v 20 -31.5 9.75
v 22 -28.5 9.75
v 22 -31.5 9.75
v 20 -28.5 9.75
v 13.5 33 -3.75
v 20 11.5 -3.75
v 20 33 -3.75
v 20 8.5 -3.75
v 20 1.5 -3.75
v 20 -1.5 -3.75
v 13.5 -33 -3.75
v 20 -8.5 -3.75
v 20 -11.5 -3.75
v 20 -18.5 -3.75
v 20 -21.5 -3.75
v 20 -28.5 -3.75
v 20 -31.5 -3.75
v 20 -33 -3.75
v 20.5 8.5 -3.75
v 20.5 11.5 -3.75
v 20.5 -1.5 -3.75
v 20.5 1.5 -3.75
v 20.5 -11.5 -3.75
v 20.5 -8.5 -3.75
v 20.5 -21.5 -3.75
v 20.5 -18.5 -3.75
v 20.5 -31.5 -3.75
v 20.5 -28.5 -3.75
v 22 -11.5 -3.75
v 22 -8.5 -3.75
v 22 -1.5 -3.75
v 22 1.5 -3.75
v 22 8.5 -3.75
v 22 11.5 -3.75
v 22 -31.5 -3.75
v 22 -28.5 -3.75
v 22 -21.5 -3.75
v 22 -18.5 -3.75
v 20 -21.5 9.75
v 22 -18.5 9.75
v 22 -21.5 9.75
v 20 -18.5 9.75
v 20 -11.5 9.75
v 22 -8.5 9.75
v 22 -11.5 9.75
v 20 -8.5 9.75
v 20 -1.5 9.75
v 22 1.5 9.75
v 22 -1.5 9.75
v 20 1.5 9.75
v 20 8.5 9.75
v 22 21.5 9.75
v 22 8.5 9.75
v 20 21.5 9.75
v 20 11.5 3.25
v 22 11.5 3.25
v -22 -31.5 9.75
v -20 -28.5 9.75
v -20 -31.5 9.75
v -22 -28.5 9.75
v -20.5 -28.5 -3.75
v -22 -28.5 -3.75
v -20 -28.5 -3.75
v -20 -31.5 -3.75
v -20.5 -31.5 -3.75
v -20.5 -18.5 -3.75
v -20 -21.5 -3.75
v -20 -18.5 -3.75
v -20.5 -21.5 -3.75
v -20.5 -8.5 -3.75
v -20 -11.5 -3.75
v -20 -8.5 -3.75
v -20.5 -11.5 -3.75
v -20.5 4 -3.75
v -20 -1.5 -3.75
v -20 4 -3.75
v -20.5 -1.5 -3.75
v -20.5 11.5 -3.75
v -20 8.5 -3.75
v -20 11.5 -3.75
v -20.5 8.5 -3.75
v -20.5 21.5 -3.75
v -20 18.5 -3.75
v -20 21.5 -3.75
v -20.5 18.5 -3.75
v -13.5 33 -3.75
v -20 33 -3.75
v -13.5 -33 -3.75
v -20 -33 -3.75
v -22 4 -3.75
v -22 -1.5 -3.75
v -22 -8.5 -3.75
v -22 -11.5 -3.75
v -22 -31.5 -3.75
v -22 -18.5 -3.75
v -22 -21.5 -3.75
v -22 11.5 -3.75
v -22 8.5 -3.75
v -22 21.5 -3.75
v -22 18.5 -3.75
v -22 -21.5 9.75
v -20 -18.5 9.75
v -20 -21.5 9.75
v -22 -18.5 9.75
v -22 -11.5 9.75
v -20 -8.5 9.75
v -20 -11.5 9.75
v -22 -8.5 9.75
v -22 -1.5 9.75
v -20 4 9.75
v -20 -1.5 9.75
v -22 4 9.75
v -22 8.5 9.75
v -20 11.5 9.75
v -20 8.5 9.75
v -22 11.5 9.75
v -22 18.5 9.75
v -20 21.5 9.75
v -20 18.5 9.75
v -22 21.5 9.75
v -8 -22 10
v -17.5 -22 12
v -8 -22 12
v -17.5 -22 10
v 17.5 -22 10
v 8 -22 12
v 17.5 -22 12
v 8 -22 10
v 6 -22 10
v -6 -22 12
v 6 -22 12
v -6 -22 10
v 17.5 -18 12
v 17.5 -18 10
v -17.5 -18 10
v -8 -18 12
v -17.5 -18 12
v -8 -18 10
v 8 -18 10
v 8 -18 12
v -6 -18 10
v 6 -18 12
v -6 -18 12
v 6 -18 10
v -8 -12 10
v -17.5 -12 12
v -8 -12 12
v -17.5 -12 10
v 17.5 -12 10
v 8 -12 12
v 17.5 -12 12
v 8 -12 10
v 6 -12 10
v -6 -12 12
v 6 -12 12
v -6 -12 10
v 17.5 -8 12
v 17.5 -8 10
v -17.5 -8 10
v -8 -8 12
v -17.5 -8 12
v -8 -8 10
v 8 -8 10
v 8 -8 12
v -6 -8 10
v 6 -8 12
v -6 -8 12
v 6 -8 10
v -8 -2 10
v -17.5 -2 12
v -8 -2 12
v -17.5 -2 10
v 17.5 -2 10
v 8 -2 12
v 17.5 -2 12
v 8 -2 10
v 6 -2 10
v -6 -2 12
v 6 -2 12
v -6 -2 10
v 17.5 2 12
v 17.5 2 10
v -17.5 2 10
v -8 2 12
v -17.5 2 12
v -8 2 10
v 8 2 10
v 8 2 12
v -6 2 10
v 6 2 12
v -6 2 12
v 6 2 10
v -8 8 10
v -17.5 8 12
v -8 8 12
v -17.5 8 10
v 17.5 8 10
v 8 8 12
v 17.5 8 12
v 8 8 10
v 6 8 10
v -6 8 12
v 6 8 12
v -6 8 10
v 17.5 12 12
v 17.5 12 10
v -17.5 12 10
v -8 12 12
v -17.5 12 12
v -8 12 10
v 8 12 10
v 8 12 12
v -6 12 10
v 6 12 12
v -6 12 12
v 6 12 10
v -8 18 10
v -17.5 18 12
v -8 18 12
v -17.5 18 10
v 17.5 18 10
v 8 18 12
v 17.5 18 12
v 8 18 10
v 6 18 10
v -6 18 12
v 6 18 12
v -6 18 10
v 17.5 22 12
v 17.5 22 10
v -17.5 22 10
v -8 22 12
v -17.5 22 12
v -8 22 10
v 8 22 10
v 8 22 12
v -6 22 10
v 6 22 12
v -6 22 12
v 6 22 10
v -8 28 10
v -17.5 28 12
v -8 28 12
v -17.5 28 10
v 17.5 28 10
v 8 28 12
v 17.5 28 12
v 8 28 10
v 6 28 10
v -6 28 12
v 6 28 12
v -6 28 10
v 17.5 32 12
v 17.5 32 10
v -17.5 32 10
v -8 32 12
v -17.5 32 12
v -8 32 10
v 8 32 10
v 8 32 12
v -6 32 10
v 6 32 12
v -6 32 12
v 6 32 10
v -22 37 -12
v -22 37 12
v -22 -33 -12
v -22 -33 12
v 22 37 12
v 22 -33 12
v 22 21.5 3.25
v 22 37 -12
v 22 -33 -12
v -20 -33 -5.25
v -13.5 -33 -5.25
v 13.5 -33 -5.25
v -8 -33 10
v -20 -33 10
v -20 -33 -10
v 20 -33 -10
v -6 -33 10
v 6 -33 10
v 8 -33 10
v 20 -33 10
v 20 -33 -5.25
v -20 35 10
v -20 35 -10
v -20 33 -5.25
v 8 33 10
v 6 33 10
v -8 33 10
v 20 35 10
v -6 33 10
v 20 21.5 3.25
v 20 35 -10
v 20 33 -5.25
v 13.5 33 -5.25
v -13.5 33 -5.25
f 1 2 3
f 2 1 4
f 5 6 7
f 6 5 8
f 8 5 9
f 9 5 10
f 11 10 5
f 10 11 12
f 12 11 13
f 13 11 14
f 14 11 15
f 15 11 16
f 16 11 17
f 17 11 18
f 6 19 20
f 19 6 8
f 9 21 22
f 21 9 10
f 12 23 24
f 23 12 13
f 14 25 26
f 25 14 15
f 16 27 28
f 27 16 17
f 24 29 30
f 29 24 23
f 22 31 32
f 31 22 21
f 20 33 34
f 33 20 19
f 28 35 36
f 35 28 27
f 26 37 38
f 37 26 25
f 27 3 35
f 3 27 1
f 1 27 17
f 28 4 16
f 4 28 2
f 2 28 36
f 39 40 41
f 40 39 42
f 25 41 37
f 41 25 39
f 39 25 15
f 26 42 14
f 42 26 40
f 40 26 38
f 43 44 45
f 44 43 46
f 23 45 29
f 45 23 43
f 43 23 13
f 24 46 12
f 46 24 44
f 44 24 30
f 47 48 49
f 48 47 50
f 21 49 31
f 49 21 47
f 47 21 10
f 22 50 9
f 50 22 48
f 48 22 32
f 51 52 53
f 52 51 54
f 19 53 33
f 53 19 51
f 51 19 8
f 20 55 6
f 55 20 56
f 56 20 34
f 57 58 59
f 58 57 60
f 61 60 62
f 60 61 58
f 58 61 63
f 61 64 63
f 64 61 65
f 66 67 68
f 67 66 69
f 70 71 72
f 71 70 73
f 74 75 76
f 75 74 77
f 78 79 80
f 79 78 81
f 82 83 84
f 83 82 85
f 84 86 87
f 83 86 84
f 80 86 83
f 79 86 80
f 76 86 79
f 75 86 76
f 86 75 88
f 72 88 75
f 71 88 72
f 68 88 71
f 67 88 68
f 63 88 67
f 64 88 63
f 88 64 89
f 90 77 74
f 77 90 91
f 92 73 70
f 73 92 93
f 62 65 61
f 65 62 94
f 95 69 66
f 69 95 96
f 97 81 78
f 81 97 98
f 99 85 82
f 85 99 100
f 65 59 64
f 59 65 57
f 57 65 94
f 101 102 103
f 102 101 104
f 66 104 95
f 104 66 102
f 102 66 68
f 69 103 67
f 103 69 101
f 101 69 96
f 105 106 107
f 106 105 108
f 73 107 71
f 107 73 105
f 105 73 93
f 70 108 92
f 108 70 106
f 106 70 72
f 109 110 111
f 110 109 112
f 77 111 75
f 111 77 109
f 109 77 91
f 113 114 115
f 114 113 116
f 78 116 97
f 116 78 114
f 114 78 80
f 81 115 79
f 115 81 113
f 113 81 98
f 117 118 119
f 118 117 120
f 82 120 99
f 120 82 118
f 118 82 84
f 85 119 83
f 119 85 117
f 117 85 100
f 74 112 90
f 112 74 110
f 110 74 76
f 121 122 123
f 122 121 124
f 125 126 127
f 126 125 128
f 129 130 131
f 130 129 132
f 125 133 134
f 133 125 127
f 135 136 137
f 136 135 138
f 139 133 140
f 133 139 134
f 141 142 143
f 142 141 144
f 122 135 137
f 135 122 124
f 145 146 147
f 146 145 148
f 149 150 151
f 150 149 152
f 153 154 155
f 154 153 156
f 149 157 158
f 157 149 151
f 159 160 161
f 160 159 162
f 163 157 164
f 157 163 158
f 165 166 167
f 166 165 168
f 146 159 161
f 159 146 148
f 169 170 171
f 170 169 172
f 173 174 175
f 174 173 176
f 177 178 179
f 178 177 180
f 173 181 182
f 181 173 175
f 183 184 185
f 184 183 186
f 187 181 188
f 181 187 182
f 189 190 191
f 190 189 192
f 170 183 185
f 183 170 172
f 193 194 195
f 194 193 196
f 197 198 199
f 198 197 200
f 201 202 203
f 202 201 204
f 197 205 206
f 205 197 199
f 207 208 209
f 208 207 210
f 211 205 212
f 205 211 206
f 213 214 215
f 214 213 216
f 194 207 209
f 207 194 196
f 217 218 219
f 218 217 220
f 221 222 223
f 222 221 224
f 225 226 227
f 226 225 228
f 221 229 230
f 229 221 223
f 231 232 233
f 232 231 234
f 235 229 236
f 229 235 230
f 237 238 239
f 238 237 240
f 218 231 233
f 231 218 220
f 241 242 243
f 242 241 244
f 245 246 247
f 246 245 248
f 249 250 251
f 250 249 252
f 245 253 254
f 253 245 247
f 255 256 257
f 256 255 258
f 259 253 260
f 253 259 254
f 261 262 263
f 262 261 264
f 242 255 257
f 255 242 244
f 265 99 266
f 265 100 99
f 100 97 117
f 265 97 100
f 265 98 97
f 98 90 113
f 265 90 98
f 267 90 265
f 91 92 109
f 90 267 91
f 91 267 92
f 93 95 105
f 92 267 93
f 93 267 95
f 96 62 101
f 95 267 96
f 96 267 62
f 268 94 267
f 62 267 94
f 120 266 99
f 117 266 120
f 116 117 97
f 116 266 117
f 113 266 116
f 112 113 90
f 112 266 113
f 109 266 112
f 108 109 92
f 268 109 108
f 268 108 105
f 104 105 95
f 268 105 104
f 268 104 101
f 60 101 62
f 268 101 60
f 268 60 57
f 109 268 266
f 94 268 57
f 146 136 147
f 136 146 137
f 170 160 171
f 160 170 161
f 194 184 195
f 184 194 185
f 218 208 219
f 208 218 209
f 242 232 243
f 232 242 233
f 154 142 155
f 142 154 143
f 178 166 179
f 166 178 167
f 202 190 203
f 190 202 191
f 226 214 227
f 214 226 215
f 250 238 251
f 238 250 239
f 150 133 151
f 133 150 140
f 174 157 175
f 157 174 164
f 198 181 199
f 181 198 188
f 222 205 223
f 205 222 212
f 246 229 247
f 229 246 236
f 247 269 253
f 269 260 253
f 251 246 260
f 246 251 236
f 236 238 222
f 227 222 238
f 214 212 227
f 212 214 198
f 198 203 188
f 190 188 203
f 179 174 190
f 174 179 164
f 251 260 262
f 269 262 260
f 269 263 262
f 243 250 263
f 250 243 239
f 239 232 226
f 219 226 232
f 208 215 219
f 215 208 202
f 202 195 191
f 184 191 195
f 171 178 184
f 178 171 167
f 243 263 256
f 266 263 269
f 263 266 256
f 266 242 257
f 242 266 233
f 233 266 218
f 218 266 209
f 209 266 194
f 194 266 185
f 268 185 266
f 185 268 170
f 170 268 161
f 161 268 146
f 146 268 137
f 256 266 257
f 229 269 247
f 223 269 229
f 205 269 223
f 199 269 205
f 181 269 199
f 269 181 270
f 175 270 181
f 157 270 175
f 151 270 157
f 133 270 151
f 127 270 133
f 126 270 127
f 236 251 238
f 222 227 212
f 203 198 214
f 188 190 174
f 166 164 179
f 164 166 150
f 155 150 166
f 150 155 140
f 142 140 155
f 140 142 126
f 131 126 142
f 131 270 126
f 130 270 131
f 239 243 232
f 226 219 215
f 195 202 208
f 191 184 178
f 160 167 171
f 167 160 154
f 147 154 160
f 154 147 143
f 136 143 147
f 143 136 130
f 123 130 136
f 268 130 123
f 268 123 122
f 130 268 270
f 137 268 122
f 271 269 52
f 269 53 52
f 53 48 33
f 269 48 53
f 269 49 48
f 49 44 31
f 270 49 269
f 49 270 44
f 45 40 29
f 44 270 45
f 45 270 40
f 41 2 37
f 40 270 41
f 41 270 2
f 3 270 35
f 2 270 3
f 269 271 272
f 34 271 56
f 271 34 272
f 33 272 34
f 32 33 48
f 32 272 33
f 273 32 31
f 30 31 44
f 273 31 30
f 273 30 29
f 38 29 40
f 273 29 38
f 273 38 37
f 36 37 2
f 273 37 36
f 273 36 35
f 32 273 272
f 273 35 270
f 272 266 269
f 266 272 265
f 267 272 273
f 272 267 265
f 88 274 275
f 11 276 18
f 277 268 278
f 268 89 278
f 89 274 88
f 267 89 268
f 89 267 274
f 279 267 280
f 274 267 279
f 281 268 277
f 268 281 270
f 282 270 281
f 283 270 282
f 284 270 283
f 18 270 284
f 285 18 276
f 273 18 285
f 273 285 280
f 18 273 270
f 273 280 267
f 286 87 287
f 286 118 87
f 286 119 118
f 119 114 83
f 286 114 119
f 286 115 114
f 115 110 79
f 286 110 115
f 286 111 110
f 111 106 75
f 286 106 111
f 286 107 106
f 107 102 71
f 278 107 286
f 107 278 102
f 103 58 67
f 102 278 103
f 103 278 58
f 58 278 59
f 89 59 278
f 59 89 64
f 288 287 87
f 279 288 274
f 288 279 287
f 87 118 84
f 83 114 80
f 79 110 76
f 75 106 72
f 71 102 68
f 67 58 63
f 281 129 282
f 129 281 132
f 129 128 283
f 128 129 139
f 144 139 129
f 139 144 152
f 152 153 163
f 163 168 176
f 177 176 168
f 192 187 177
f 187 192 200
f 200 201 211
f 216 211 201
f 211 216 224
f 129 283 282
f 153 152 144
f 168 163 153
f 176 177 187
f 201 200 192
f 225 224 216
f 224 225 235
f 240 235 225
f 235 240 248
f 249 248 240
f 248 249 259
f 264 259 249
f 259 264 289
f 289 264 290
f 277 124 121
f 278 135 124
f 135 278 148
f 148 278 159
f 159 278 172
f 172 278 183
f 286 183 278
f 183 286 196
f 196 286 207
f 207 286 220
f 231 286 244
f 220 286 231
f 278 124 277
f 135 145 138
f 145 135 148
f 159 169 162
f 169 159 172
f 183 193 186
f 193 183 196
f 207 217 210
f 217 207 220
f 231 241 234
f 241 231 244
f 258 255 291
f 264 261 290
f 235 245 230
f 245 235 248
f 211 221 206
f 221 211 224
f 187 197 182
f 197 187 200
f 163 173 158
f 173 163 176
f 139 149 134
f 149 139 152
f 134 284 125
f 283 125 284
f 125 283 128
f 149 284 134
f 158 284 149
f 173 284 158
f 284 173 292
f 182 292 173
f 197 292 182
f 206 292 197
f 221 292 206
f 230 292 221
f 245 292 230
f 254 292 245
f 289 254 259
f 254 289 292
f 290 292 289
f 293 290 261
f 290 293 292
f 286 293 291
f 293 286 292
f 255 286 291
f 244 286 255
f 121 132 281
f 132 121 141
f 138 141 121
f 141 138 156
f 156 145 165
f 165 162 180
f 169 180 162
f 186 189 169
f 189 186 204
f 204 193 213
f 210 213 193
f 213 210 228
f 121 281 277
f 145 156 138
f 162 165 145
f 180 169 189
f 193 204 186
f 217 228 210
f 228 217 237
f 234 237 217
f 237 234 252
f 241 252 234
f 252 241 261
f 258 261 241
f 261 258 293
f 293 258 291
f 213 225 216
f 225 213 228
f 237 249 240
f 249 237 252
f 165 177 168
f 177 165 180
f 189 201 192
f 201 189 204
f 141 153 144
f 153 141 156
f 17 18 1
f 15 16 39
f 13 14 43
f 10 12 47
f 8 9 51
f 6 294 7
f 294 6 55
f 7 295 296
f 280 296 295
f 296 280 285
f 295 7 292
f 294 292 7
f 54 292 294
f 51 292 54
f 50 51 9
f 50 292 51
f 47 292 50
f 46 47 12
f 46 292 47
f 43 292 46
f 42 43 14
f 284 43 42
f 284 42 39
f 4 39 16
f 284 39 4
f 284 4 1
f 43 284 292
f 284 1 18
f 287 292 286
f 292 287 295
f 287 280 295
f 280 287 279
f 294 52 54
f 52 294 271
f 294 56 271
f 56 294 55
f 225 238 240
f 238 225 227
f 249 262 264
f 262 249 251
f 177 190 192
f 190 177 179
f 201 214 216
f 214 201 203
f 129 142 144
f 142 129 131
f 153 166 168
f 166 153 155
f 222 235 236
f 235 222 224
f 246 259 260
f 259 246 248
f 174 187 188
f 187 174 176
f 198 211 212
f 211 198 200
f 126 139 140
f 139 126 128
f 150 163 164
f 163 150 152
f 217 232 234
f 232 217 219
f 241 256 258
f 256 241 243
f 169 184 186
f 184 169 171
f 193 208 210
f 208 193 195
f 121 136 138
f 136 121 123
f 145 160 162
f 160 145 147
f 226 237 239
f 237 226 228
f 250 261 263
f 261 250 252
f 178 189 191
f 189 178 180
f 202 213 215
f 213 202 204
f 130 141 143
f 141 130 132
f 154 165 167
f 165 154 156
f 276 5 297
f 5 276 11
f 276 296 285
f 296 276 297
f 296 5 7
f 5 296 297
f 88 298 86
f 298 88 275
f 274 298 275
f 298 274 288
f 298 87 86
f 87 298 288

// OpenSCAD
$fn = 50;

// Parâmetros da caixa
larg = 40;
alt = 20;
prof = 70;
esp = 2;


nicho_largura = 1.5;  
nicho_altura = 2;      


// Módulo da haste usada como recorte
module hasteLateral() {
    cube([4, 3, 13.5], center = true);
}

module hasteSuperior(){
    cube([4, 5, 35], center = true);

}    

//suporte entre as janelas superiores
module trelicaSuperior(){
    
    cube([esp,prof-4,esp] , center = true);
    
}

translate([35/5,0,11])trelicaSuperior();
translate([-35/5,0,11])trelicaSuperior();


module trelicaLateral(){
    
    cube([7,prof-4,1.5] , center = true);
    
}
translate([34/2,0,-4.5])trelicaLateral();
translate([-34/2,0,-4.5])trelicaLateral();



//nicho para encaixe da placa
module nicho() {
    
    cube([nicho_largura, prof, nicho_altura], center=true);
}

// Módulo da placa interna (vão)
module placa() {
    cube([larg, prof, alt], center = true);
}

// Módulo da caixa com recortes nas laterais e topo
// Módulo da caixa com recortes nas laterais e topo
module caixa() {
    difference() {
        // Corpo externo da caixa
        translate([0, esp, 0])
            cube([larg + 2 * esp, prof, alt + 2 * esp], center = true);

        // Subtrai o vão interno
        placa();

        // Recortes nas laterais 
        for (y = [-30, -20, -10, 0, 10]) {
            // Lado direito
            translate([larg/2 + esp/2, y, 3])
                hasteLateral();
        }
        for (y = [-30, -20, -10, 0, 10, 20, 2.5]) {
            // Lado esquerdo
            translate([-larg/2 - esp/2, y, 3])
                hasteLateral();
        }

        // Recortes no topo
        for (x = [-20, -10, 0, 10, 20, 30]) {
            rotate([90, 0, 90]) // Roda para furar na tampa
                translate([x, 10, 0])
                    hasteSuperior();
        }
        //Entrada do cabo
        translate([23,21,2])cube([10,11,6.5], center = true);

    }
}



// Gera a caixa com recortes
caixa();
// Recortes no topo (parte superior da caixa)
//translate([larg/2 - nicho_largura/2,0,-5])nicho();
